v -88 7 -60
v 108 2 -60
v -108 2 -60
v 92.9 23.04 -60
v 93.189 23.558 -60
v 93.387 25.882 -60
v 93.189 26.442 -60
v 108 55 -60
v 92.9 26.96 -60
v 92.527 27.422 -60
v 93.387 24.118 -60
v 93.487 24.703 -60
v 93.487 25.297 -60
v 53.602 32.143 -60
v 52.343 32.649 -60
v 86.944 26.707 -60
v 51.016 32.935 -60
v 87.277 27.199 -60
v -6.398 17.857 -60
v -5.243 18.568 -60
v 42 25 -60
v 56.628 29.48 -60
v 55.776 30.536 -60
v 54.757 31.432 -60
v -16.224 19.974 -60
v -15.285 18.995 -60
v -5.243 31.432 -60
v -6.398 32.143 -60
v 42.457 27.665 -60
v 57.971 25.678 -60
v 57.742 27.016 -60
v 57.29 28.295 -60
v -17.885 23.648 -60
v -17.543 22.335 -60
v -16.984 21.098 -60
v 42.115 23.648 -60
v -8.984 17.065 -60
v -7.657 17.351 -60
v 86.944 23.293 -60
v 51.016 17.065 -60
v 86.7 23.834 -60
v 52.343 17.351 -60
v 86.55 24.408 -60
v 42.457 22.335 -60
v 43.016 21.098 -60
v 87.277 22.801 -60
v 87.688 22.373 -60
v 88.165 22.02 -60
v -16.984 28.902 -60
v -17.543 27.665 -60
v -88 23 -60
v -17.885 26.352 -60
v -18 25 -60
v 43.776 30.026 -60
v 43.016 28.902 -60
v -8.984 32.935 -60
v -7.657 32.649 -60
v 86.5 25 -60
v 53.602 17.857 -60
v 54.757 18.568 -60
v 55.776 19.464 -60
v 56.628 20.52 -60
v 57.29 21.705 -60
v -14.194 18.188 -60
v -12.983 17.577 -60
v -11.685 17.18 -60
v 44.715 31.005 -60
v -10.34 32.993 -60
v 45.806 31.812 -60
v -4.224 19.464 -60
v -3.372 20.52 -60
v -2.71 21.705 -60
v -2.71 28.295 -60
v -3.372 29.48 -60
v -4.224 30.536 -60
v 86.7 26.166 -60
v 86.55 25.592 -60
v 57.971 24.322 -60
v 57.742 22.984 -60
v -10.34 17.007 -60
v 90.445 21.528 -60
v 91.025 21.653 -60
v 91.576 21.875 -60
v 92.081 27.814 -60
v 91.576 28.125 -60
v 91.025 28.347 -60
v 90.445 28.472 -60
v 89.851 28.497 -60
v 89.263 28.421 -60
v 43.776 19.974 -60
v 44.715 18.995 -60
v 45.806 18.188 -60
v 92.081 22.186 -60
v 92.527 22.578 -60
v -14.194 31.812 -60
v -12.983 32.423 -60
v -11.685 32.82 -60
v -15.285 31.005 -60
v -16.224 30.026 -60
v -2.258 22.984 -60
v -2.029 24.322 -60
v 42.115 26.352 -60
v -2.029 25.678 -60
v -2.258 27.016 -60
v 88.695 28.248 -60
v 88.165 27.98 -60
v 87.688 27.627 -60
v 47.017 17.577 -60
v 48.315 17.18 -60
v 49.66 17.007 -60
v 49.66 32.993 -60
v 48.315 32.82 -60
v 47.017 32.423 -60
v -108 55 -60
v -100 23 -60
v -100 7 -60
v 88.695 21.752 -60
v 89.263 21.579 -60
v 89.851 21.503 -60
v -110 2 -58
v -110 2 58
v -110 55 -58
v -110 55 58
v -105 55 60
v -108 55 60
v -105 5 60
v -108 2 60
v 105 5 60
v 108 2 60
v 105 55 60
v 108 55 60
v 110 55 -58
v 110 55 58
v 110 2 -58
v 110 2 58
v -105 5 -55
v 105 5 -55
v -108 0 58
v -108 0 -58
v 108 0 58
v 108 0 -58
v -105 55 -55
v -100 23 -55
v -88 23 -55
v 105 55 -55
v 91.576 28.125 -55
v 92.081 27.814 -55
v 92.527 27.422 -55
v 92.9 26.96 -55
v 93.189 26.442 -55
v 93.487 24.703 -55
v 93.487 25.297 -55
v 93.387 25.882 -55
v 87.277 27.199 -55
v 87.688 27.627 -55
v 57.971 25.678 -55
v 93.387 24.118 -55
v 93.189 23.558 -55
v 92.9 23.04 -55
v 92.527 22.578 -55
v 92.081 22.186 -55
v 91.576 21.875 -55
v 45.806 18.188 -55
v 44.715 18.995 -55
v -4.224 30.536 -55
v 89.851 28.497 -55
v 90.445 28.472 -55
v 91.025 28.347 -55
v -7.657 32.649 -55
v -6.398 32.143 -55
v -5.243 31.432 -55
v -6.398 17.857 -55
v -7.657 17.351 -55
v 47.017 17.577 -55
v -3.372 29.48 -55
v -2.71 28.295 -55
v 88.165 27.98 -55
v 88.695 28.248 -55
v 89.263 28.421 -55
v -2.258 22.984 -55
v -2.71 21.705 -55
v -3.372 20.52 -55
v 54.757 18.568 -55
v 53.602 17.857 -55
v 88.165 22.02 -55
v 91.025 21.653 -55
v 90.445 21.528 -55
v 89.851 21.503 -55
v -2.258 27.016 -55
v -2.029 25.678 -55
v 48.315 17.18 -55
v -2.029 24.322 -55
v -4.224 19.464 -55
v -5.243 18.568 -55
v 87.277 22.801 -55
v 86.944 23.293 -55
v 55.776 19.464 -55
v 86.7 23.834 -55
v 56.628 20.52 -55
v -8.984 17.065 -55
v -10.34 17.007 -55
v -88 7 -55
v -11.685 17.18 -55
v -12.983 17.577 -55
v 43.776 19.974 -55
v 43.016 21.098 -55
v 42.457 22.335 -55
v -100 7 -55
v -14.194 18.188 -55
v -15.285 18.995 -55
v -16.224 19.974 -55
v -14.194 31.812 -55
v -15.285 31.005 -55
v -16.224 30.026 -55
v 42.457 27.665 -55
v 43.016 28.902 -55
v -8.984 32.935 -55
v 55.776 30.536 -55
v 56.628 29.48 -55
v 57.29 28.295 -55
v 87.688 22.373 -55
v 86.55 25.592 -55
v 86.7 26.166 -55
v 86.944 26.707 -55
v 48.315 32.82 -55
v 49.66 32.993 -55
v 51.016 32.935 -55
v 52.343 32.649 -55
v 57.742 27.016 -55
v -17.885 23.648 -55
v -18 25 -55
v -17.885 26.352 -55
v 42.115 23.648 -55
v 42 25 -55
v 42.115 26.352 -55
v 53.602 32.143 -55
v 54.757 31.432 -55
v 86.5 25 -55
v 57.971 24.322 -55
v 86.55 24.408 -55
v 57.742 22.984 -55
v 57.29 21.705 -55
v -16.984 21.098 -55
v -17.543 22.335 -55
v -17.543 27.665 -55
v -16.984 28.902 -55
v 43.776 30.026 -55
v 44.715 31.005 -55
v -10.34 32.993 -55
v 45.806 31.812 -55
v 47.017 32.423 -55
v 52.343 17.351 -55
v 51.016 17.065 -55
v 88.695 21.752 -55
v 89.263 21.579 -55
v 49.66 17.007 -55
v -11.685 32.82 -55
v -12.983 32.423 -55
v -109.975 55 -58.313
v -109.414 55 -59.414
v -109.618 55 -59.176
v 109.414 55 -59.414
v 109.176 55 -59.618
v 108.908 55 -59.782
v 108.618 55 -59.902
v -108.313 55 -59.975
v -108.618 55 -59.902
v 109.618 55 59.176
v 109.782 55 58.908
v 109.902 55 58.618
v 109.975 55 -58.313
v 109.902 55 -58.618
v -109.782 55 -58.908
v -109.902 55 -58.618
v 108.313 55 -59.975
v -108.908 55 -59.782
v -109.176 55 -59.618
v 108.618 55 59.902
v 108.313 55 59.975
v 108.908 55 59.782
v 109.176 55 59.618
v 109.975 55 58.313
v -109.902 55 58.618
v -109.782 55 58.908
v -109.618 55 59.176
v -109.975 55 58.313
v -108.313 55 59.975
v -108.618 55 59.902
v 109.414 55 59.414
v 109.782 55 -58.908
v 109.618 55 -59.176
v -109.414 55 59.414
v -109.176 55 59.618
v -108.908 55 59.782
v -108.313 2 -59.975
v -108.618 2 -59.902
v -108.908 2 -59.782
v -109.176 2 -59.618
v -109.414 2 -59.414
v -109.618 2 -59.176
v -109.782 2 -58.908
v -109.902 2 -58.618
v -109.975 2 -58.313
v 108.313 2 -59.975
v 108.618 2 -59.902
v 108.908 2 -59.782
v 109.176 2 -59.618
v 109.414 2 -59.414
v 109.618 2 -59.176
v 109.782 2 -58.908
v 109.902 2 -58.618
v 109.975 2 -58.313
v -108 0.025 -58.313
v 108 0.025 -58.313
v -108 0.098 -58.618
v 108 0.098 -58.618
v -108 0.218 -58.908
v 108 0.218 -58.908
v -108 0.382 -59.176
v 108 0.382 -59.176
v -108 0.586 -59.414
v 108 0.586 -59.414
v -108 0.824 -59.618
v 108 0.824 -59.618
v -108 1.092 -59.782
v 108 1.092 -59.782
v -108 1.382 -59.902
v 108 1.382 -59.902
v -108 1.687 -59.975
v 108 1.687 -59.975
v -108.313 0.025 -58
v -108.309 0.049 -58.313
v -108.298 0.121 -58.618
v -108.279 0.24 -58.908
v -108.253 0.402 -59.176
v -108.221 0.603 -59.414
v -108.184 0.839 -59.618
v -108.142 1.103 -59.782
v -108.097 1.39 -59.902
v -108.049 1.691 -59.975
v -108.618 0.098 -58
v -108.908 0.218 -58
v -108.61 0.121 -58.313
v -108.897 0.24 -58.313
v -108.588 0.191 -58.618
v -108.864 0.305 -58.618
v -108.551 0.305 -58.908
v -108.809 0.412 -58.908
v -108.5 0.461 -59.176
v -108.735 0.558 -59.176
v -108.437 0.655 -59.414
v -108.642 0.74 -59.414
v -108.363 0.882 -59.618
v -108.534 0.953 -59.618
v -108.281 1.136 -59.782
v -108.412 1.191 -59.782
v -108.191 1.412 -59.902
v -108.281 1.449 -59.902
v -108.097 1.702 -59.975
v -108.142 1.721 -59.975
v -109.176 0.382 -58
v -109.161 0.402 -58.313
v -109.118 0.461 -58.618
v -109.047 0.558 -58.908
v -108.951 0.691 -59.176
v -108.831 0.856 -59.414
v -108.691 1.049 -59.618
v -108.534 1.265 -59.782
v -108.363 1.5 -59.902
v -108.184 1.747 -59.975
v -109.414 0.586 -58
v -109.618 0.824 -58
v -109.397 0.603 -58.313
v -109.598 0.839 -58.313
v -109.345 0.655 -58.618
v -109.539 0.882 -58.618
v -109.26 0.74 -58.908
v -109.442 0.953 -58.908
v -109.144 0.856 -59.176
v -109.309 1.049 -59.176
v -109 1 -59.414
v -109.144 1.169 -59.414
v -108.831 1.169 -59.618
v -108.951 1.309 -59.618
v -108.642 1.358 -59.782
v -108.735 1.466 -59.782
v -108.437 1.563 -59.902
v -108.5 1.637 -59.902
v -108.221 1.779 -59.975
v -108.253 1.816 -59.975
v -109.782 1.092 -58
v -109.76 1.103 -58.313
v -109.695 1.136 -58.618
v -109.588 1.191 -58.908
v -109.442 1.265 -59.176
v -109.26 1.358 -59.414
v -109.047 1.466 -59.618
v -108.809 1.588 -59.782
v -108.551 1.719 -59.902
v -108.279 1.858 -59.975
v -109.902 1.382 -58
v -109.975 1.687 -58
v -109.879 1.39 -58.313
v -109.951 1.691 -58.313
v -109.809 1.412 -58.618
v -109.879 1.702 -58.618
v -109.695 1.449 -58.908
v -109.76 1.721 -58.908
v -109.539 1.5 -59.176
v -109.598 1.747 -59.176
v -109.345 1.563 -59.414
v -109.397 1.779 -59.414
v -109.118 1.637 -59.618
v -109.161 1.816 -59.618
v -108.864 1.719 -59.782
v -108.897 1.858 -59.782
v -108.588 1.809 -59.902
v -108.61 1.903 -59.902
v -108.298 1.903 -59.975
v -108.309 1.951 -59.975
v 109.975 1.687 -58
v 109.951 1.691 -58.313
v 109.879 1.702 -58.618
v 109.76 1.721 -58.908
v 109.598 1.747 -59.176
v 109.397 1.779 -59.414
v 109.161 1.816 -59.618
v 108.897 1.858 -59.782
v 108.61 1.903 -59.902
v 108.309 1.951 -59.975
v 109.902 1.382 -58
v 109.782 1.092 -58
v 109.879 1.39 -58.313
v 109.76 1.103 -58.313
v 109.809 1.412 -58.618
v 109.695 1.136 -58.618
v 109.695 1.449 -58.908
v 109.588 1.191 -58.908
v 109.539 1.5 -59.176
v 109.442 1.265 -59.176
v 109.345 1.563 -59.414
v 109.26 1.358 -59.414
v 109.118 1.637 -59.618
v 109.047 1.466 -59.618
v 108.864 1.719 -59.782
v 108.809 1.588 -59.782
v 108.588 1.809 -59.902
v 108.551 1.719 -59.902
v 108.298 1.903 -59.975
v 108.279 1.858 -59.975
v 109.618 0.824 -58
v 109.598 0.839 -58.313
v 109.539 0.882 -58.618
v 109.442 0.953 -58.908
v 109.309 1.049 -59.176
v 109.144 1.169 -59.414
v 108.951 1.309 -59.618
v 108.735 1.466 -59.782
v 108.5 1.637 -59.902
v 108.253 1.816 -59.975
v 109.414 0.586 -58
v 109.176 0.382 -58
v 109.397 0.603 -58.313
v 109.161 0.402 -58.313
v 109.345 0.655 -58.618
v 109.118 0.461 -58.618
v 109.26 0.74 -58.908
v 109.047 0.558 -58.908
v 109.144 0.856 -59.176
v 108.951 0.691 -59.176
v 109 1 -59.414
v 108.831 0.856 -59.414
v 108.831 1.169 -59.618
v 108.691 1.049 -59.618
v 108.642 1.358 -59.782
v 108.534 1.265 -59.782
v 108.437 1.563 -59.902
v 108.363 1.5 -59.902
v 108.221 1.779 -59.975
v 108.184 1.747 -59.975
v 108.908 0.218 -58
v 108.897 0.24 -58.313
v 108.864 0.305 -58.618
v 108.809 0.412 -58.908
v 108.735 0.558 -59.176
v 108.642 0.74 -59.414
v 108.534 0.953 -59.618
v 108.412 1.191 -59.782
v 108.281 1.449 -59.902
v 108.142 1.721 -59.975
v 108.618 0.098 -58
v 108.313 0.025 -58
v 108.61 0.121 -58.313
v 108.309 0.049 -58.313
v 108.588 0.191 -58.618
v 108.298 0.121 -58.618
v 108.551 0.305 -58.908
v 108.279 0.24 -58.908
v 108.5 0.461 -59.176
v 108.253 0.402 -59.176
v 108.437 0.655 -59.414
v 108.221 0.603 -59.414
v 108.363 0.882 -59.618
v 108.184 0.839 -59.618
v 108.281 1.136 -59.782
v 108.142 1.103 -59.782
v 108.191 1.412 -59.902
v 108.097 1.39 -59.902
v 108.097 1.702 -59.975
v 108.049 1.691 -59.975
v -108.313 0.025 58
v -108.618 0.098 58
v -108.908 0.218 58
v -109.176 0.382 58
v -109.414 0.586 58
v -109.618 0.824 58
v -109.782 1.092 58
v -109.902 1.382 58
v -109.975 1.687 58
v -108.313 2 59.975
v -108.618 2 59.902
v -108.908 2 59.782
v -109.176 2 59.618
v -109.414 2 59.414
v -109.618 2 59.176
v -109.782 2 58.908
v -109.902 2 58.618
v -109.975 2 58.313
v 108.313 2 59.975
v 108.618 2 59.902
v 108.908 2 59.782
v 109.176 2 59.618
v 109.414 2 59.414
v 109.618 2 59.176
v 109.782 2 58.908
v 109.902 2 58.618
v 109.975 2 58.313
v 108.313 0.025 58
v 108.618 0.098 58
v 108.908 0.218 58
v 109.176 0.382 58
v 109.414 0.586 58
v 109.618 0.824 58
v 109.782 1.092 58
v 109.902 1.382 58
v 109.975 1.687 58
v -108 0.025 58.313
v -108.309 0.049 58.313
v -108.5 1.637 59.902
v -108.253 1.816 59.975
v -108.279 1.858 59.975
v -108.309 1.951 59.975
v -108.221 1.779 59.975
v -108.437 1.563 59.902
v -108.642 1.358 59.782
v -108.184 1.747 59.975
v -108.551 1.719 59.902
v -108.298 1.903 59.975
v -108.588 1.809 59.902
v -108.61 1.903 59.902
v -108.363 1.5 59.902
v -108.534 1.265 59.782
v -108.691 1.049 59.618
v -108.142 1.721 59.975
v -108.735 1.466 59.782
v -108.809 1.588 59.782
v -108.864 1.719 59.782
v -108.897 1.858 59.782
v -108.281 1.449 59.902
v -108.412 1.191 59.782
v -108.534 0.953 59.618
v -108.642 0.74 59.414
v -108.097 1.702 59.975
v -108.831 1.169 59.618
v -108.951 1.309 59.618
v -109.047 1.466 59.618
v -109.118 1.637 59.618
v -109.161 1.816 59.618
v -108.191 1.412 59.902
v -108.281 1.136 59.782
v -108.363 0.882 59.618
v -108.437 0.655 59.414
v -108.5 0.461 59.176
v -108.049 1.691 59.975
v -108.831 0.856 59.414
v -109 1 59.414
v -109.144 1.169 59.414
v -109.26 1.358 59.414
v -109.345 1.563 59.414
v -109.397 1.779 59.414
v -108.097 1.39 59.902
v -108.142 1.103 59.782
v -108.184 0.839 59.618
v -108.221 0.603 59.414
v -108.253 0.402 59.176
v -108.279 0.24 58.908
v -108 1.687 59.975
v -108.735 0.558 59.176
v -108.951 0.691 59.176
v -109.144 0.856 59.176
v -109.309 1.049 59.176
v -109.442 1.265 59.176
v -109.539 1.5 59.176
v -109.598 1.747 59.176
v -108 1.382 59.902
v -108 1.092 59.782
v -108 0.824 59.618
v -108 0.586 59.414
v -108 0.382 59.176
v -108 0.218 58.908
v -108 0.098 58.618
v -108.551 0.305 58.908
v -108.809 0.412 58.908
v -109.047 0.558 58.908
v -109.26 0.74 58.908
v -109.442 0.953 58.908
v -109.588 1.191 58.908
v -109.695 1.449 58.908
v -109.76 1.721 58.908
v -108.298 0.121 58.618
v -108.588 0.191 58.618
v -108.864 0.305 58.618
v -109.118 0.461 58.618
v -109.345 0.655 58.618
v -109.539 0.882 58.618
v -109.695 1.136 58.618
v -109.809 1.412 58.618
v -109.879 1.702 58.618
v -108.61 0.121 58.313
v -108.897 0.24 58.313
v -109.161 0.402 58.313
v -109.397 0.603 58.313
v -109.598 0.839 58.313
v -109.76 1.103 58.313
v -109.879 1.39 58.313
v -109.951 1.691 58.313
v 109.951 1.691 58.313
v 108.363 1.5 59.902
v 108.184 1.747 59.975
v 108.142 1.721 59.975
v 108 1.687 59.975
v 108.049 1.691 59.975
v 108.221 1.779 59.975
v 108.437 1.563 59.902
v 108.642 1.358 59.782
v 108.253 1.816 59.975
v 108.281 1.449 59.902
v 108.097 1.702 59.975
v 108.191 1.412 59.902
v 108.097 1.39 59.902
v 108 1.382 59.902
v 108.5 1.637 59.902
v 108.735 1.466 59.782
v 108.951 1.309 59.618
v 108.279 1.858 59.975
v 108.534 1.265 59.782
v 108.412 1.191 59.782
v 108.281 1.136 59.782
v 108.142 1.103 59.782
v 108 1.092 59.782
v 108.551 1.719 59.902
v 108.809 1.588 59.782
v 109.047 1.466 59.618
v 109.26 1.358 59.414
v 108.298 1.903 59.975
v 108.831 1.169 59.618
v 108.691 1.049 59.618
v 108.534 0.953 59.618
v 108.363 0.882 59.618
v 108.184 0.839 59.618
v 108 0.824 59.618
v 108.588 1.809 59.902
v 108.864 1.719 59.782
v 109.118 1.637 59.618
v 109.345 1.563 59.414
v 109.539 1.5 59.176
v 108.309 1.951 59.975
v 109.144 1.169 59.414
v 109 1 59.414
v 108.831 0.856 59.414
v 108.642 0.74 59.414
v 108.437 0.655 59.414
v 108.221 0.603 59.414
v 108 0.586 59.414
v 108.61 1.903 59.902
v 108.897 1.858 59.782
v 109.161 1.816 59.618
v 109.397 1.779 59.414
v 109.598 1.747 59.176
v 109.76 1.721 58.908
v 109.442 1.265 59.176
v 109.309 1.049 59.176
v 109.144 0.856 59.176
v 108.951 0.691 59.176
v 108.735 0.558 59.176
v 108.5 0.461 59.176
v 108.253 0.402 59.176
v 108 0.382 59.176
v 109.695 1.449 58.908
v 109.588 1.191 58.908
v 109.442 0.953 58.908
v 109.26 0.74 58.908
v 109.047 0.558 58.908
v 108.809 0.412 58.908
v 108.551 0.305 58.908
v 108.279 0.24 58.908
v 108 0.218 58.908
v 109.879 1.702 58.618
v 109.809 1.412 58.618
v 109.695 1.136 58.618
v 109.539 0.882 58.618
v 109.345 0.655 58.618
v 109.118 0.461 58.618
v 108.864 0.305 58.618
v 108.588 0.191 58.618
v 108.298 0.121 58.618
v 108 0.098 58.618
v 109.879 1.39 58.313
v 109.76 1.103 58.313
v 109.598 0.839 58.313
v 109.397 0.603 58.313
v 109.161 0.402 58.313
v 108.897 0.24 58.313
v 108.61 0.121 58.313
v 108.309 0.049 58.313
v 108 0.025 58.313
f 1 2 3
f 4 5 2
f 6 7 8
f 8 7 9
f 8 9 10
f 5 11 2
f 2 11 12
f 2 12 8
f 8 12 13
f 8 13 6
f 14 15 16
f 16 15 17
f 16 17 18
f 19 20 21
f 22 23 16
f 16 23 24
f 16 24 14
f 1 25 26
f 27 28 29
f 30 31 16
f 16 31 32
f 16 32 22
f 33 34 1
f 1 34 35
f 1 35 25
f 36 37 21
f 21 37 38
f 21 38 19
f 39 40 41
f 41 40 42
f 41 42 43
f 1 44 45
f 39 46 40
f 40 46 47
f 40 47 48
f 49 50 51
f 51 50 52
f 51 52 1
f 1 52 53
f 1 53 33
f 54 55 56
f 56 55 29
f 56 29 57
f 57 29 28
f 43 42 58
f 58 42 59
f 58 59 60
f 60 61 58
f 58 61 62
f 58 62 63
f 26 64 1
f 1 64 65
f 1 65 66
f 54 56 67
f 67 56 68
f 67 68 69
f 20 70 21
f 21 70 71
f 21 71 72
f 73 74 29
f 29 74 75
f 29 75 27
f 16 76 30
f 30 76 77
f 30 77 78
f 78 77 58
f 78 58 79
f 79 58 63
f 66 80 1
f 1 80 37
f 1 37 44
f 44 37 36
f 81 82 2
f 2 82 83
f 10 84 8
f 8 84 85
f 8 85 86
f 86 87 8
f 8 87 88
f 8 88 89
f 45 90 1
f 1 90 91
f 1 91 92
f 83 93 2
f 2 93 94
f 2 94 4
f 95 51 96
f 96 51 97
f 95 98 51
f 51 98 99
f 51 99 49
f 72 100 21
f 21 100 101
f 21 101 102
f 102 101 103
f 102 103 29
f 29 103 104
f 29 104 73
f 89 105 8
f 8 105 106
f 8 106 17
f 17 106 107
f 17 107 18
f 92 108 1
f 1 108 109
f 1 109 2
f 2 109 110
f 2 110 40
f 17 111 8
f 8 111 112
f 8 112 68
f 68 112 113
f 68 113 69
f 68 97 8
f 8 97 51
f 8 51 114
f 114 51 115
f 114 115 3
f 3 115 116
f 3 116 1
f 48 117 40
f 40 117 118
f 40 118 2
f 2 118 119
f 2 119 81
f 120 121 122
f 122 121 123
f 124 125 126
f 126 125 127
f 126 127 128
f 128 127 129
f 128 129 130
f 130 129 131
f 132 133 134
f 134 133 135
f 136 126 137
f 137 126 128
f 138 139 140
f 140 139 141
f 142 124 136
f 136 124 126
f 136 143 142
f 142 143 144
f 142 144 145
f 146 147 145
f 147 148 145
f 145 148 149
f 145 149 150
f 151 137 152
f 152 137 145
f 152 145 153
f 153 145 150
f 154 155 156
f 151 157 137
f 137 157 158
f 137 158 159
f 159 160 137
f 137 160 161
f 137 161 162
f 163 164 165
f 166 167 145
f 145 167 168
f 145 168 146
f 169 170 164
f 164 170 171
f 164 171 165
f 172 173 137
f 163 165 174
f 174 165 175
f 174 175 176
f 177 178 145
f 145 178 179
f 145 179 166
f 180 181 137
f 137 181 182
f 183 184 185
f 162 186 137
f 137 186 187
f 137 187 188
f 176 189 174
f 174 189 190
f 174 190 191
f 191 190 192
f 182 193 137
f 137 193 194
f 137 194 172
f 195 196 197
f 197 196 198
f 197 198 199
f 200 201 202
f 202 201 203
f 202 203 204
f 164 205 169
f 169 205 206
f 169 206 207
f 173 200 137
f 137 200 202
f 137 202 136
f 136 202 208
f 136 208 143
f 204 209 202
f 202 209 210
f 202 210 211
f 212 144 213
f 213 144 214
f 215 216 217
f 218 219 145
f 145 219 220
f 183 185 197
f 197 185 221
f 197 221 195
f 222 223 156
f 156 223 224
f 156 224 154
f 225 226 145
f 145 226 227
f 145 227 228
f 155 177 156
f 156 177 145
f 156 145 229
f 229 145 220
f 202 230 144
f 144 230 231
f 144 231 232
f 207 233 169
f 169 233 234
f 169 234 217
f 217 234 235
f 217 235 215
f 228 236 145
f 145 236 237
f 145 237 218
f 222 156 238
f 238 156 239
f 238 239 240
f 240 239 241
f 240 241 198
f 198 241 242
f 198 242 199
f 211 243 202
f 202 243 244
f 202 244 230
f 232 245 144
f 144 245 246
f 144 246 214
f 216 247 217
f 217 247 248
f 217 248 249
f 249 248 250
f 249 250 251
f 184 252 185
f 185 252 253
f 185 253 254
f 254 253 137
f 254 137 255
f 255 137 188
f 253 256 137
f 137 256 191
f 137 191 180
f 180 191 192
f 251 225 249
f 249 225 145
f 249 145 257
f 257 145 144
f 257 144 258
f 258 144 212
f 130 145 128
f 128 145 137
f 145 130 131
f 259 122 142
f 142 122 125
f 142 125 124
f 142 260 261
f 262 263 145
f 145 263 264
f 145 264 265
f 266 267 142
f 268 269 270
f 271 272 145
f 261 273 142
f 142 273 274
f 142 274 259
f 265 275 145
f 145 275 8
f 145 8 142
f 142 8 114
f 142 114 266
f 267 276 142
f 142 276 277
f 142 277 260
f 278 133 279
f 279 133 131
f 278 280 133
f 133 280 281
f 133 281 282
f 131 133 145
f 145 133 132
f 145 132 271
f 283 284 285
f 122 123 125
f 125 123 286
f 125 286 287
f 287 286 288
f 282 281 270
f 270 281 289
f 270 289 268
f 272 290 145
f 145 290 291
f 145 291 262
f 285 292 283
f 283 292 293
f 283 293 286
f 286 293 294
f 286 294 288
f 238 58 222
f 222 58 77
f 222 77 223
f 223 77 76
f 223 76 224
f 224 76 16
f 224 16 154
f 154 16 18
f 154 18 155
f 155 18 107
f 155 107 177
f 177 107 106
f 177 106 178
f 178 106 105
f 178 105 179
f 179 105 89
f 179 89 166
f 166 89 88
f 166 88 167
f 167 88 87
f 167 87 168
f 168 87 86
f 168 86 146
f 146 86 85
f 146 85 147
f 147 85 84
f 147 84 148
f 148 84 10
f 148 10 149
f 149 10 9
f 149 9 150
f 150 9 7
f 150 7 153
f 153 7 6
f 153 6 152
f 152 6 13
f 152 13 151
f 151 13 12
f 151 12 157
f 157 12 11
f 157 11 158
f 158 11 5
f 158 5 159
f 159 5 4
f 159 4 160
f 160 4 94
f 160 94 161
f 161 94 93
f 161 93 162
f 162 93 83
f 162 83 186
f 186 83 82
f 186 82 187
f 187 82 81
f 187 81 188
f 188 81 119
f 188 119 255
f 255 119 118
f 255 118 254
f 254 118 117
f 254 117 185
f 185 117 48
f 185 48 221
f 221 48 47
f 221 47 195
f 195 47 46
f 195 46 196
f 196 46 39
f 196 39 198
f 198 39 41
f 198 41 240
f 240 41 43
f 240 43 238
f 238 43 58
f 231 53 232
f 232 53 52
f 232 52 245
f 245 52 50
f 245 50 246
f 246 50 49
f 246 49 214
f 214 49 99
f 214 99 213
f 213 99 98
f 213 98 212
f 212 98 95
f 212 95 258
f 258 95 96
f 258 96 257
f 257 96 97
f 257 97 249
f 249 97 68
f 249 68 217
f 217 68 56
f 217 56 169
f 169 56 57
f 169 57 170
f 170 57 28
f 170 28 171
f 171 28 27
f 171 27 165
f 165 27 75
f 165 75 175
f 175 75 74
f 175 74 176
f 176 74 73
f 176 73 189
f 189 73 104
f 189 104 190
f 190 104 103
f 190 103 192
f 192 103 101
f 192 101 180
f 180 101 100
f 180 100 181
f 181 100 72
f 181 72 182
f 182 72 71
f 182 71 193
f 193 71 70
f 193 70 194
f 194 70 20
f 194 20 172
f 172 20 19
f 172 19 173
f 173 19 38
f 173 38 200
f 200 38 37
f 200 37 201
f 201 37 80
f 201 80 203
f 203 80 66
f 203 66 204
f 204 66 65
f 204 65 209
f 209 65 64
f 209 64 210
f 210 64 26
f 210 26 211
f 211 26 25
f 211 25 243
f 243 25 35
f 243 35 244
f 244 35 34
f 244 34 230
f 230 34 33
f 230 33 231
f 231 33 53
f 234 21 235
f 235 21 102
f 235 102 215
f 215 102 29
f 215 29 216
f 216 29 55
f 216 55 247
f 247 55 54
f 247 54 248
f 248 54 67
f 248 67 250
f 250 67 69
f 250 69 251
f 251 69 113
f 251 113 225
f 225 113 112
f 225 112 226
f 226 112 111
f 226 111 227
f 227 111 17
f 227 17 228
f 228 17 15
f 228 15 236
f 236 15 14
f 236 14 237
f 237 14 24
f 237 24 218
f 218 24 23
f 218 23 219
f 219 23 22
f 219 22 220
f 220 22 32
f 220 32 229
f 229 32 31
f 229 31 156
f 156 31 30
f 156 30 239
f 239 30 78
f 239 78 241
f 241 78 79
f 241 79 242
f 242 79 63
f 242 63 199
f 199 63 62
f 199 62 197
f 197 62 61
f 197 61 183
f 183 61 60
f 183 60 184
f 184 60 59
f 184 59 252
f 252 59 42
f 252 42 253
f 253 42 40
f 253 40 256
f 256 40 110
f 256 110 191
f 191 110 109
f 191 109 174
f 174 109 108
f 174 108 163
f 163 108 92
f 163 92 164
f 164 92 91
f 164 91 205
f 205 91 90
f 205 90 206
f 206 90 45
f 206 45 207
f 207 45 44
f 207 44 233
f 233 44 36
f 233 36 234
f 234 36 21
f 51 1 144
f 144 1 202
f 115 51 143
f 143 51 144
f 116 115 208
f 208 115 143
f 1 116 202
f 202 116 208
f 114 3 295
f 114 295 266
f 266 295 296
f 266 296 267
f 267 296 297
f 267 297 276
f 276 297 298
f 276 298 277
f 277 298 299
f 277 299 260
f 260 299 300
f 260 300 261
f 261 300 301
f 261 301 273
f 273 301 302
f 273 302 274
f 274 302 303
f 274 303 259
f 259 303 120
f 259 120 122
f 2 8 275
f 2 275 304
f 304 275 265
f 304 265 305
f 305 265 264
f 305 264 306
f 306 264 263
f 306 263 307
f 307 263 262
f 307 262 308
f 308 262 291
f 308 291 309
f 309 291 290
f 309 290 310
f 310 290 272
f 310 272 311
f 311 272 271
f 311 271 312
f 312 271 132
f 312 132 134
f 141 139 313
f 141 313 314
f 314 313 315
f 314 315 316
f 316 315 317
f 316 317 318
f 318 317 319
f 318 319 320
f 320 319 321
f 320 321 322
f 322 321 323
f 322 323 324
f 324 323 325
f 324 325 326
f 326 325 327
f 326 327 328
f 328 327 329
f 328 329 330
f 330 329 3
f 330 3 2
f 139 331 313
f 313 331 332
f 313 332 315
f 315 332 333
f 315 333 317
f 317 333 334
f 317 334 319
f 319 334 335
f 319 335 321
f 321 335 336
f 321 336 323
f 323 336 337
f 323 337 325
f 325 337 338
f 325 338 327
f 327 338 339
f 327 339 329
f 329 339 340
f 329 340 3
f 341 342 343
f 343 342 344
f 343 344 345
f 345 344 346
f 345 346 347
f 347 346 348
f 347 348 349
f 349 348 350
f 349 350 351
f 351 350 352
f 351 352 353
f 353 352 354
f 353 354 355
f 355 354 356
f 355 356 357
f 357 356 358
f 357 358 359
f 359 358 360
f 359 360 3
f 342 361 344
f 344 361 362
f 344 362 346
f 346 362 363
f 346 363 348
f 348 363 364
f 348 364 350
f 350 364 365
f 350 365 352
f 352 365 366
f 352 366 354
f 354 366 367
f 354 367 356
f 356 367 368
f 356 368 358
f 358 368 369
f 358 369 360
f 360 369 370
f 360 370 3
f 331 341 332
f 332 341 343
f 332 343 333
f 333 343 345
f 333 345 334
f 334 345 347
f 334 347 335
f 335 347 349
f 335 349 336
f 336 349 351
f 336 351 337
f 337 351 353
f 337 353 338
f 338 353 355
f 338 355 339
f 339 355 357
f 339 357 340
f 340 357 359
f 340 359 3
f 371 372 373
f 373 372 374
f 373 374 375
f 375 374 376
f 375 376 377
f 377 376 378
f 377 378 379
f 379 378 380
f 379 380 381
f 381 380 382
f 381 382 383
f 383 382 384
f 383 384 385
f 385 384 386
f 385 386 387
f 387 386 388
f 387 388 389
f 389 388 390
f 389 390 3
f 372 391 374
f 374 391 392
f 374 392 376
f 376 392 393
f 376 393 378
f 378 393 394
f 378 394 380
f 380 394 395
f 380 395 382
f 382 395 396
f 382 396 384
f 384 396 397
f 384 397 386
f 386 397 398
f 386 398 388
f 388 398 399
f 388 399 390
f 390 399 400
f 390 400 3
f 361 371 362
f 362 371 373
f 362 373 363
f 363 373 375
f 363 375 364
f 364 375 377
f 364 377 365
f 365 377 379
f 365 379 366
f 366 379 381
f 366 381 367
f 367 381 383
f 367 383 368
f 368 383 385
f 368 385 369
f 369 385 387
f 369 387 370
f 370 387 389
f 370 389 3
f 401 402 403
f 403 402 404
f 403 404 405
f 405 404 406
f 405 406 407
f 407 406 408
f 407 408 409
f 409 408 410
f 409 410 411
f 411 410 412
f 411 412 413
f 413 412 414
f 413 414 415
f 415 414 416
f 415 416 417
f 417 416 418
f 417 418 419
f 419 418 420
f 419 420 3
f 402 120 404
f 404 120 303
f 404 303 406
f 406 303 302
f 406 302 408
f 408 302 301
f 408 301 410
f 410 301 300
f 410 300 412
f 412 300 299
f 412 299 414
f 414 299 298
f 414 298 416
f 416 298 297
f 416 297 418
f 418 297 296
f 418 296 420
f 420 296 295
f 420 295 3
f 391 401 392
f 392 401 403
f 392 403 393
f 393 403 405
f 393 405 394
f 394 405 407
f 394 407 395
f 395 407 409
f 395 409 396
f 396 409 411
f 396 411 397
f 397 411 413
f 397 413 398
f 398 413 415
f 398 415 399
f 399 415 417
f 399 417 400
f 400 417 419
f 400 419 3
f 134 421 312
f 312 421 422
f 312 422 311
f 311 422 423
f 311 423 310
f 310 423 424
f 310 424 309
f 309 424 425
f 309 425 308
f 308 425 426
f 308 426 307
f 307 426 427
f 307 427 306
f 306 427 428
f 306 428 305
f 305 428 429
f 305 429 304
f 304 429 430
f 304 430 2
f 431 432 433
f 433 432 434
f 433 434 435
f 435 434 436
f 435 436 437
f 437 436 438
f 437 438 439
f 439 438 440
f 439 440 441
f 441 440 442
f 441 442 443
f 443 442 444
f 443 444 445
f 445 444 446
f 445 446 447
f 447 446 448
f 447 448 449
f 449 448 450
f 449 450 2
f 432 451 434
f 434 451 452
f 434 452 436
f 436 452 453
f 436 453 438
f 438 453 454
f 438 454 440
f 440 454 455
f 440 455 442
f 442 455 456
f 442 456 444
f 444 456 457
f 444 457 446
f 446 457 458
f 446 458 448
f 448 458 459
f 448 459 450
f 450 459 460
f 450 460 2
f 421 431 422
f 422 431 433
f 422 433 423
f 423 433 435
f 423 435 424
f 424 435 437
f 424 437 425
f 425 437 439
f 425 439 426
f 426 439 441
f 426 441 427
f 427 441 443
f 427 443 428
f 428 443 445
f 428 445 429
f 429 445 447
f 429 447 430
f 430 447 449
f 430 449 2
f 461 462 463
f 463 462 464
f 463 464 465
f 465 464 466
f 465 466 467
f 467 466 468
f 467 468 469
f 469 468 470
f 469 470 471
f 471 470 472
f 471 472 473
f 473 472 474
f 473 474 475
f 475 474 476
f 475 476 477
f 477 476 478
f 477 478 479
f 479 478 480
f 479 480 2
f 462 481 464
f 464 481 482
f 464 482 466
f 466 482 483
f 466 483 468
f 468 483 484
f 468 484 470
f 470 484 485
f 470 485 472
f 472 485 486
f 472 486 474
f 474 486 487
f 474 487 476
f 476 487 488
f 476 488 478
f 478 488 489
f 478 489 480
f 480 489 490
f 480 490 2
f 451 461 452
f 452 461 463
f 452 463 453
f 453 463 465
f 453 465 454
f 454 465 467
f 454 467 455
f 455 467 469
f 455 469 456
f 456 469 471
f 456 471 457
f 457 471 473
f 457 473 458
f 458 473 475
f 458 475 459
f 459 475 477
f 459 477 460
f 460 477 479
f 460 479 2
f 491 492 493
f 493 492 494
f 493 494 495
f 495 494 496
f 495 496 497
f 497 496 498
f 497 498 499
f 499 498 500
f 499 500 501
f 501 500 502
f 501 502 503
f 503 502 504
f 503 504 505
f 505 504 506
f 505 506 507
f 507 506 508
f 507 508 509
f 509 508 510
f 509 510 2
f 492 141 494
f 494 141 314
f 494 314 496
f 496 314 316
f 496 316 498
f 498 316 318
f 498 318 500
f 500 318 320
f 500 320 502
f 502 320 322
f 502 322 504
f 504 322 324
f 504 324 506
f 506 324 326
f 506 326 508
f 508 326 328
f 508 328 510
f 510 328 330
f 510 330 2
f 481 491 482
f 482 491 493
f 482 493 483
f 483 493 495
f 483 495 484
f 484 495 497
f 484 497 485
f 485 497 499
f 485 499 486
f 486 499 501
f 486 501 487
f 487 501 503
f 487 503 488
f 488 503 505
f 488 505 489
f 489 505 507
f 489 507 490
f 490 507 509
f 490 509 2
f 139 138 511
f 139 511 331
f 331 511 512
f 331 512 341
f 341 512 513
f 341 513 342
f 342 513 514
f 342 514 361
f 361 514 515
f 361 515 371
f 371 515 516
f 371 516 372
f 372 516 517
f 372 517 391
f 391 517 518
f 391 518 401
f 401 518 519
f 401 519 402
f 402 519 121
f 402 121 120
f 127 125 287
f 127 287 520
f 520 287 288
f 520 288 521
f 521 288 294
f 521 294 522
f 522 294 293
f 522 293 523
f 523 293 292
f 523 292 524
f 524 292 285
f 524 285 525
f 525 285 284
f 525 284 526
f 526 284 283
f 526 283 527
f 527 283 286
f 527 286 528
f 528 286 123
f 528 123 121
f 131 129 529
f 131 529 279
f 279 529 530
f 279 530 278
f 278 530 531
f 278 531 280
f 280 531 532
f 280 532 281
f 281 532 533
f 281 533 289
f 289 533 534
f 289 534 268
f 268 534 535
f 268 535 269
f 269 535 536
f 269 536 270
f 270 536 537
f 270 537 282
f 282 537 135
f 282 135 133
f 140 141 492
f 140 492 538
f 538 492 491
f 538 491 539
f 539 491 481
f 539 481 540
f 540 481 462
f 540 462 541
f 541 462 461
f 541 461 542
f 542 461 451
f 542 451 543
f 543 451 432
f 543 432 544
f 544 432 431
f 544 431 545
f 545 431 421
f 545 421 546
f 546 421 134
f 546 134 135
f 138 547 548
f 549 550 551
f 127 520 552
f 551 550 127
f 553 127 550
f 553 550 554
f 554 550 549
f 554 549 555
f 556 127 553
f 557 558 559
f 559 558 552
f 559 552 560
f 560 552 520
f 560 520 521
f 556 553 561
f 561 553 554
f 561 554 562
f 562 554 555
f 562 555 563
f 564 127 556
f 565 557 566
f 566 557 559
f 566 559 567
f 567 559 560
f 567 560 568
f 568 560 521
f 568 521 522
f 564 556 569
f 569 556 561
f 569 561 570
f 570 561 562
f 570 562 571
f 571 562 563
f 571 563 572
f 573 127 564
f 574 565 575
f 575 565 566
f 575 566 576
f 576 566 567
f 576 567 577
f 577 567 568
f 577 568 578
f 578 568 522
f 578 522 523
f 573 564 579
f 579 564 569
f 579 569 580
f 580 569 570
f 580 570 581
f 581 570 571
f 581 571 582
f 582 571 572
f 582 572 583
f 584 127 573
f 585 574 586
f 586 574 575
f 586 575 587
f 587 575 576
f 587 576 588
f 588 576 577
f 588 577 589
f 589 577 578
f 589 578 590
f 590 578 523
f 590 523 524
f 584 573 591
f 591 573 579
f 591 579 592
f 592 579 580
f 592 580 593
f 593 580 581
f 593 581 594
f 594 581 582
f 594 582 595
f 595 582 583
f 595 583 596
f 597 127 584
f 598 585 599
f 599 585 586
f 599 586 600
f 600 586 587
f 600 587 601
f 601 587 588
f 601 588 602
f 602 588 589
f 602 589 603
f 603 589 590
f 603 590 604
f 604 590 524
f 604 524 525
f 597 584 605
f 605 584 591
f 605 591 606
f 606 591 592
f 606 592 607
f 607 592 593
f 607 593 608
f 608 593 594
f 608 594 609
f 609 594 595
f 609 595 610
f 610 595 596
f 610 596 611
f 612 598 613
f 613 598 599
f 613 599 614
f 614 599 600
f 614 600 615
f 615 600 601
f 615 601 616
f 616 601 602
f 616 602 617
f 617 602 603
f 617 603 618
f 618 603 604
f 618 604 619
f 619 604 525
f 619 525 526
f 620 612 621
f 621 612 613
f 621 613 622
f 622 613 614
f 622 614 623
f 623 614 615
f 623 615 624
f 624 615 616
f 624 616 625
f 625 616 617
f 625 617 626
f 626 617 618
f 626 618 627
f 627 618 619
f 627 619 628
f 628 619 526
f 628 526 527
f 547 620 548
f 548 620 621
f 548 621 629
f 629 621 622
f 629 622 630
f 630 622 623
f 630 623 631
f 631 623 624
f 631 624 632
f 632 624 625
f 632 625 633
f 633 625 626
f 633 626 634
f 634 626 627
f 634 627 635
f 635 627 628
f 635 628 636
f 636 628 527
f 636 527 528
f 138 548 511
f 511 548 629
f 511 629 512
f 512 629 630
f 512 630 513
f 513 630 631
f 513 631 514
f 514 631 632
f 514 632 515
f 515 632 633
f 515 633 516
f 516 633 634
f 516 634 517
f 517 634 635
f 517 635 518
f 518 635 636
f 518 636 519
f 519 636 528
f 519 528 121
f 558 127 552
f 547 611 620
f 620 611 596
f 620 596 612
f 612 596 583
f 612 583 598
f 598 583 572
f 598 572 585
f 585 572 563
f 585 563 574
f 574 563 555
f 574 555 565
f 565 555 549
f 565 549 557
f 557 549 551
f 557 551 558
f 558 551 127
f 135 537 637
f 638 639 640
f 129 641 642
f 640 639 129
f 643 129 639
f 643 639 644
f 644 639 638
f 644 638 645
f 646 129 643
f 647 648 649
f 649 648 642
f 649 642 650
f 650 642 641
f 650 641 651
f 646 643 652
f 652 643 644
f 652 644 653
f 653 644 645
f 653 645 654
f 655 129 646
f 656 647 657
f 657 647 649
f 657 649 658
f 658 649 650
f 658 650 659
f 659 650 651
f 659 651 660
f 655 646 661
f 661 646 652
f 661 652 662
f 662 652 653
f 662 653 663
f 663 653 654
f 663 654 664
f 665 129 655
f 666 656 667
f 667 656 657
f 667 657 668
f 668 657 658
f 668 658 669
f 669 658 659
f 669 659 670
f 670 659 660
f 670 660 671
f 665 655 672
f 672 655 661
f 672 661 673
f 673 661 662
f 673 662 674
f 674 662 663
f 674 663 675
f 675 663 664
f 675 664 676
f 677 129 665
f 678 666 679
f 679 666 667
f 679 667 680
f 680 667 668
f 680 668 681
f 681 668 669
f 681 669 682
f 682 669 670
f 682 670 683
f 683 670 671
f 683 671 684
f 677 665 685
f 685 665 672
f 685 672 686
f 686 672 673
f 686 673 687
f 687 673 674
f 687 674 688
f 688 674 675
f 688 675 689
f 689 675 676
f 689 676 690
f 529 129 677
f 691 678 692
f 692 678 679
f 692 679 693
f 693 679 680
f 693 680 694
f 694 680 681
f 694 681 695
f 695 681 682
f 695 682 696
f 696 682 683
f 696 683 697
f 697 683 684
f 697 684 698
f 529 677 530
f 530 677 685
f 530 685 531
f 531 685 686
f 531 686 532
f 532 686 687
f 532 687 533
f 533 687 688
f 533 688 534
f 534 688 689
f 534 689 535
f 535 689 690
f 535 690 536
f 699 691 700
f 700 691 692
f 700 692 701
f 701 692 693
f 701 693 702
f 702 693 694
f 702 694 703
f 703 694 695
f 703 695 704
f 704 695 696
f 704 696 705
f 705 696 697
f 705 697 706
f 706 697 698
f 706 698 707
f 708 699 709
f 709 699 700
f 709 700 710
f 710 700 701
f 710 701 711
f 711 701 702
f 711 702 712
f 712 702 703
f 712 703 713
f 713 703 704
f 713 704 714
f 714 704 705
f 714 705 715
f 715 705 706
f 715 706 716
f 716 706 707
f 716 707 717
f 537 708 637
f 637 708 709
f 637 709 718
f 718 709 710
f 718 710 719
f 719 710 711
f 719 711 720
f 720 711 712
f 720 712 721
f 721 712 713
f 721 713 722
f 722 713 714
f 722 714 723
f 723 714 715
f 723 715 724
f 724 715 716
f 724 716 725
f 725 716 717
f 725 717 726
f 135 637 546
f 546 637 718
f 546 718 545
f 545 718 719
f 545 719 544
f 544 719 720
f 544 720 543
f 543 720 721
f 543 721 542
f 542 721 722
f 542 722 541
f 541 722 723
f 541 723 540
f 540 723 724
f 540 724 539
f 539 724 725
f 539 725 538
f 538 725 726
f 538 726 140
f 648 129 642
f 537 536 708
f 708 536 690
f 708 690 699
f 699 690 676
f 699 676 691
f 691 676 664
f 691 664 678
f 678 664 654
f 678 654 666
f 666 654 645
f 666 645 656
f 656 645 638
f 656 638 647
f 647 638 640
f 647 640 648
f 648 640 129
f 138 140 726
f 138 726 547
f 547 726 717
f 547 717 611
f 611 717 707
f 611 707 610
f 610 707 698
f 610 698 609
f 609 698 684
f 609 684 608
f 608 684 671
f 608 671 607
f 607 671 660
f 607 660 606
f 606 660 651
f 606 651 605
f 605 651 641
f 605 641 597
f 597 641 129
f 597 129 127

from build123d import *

# Parameters (mm, degrees)
CROQUIS1_W              = 220
CROQUIS1_H              = 120
SALIENTE_EXTRUIR1_DEPTH = 5
SALIENTE_EXTRUIR2_DEPTH = 50
CORTAR_EXTRUIR1_REACH   = 173.828
CROQUIS3_R              = 8
CROQUIS3_R_2            = 3.5
CROQUIS3_W              = 12
CROQUIS3_H              = 16
REDONDEO1_R             = 2


with BuildPart() as part:
    # Croquis1 → Saliente-Extruir1 (new body)
    with BuildSketch(Plane(origin=(0, 0, 0), x_dir=(1, 0, 0), z_dir=(0, 1, 0))):
        Rectangle(CROQUIS1_W, CROQUIS1_H)
    extrude(amount=SALIENTE_EXTRUIR1_DEPTH)

    # Croquis2 → Saliente-Extruir2 (add)
    with BuildSketch(Plane(origin=(0, 5, 0), x_dir=(1, 0, 0), z_dir=(0, 1, 0))):
        Polygon((-110, 60), (-105, 60), (105, 60), (110, 60), (110, -60), (105, -60), (105, 55), (-105, 55), (-105, -60), (-110, -60), align=None)
    extrude(amount=SALIENTE_EXTRUIR2_DEPTH)

    # Croquis3 → Cortar-Extruir1 (cut, up to next)
    with BuildSketch(Plane(origin=(0, 0, -60), x_dir=(-1, 0, 0), z_dir=(0, 0, -1)), mode=Mode.PRIVATE) as cortar_extruir1_sk1:
        with Locations((-50, 25)):
            Circle(CROQUIS3_R)
    cortar_extruir1_tool1 = extrude(cortar_extruir1_sk1.sketch, amount=-CORTAR_EXTRUIR1_REACH, mode=Mode.PRIVATE) & part.part
    # Croquis3 → Cortar-Extruir1 (cut, up to next)
    with BuildSketch(Plane(origin=(0, 0, -60), x_dir=(-1, 0, 0), z_dir=(0, 0, -1)), mode=Mode.PRIVATE) as cortar_extruir1_sk2:
        with Locations((10, 25)):
            Circle(CROQUIS3_R)
    cortar_extruir1_tool2 = extrude(cortar_extruir1_sk2.sketch, amount=-CORTAR_EXTRUIR1_REACH, mode=Mode.PRIVATE) & part.part
    # Croquis3 → Cortar-Extruir1 (cut, up to next)
    with BuildSketch(Plane(origin=(0, 0, -60), x_dir=(-1, 0, 0), z_dir=(0, 0, -1)), mode=Mode.PRIVATE) as cortar_extruir1_sk3:
        with Locations((-90, 25)):
            Circle(CROQUIS3_R_2)
    cortar_extruir1_tool3 = extrude(cortar_extruir1_sk3.sketch, amount=-CORTAR_EXTRUIR1_REACH, mode=Mode.PRIVATE) & part.part
    # Croquis3 → Cortar-Extruir1 (cut, up to next)
    with BuildSketch(Plane(origin=(0, 0, -60), x_dir=(-1, 0, 0), z_dir=(0, 0, -1)), mode=Mode.PRIVATE) as cortar_extruir1_sk4:
        with Locations((94, 15)):
            Rectangle(CROQUIS3_W, CROQUIS3_H)
    cortar_extruir1_tool4 = extrude(cortar_extruir1_sk4.sketch, amount=-CORTAR_EXTRUIR1_REACH, mode=Mode.PRIVATE) & part.part
    add(cortar_extruir1_tool1.solids().sort_by_distance((50, 25, -60))[0], mode=Mode.SUBTRACT)
    add(cortar_extruir1_tool2.solids().sort_by_distance((-10, 25, -60))[0], mode=Mode.SUBTRACT)
    add(cortar_extruir1_tool3.solids().sort_by_distance((90, 25, -60))[0], mode=Mode.SUBTRACT)
    add(cortar_extruir1_tool4.solids().sort_by_distance((-94, 15, -60))[0], mode=Mode.SUBTRACT)

    # Redondeo1
    redondeo1_edges = [part.edges().sort_by_distance(p)[0] for p in [
        (-110, 0, 0),
        (0, 0, 60),
        (110, 0, 0),
        (0, 0, -60),
        (-110, 27.5, -60),
        (-110, 27.5, 60),
        (110, 27.5, 60),
        (110, 27.5, -60),
    ]]
    fillet(redondeo1_edges, radius=REDONDEO1_R)


solid = part.part
